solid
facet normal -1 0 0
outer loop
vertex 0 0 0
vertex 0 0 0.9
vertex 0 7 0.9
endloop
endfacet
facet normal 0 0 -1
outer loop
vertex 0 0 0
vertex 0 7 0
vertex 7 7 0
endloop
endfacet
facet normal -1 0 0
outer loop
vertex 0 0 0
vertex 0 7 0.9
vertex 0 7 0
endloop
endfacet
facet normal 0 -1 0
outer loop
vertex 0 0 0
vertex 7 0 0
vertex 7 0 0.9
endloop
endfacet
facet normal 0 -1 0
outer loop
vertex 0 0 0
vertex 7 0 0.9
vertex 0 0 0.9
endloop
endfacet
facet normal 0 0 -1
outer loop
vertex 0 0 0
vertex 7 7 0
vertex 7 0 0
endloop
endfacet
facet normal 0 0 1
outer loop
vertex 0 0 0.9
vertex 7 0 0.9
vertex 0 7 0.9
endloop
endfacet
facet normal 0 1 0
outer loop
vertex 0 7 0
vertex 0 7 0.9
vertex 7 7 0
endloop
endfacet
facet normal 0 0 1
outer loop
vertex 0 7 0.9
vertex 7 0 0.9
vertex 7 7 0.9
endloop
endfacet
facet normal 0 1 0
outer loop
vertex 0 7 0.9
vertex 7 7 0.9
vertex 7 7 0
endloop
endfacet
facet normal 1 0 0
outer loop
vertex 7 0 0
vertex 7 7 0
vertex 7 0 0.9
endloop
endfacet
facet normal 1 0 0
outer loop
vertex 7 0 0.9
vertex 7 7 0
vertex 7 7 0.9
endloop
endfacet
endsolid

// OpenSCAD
/* Warning, this is a very basic generator with a lot of approximation 
input data : [VQFN, T3B, 7x7x0.9mm, 48, , A, C04-21425A]
generated by com.zoubworld.electronics.cad.model3d.Basic
Date : Sun Feb 15 10:50:49 CET 2026
*/

//body
color("black")
translate([0,0,0])
cube([7.0,7.0,0.9], center=false);
